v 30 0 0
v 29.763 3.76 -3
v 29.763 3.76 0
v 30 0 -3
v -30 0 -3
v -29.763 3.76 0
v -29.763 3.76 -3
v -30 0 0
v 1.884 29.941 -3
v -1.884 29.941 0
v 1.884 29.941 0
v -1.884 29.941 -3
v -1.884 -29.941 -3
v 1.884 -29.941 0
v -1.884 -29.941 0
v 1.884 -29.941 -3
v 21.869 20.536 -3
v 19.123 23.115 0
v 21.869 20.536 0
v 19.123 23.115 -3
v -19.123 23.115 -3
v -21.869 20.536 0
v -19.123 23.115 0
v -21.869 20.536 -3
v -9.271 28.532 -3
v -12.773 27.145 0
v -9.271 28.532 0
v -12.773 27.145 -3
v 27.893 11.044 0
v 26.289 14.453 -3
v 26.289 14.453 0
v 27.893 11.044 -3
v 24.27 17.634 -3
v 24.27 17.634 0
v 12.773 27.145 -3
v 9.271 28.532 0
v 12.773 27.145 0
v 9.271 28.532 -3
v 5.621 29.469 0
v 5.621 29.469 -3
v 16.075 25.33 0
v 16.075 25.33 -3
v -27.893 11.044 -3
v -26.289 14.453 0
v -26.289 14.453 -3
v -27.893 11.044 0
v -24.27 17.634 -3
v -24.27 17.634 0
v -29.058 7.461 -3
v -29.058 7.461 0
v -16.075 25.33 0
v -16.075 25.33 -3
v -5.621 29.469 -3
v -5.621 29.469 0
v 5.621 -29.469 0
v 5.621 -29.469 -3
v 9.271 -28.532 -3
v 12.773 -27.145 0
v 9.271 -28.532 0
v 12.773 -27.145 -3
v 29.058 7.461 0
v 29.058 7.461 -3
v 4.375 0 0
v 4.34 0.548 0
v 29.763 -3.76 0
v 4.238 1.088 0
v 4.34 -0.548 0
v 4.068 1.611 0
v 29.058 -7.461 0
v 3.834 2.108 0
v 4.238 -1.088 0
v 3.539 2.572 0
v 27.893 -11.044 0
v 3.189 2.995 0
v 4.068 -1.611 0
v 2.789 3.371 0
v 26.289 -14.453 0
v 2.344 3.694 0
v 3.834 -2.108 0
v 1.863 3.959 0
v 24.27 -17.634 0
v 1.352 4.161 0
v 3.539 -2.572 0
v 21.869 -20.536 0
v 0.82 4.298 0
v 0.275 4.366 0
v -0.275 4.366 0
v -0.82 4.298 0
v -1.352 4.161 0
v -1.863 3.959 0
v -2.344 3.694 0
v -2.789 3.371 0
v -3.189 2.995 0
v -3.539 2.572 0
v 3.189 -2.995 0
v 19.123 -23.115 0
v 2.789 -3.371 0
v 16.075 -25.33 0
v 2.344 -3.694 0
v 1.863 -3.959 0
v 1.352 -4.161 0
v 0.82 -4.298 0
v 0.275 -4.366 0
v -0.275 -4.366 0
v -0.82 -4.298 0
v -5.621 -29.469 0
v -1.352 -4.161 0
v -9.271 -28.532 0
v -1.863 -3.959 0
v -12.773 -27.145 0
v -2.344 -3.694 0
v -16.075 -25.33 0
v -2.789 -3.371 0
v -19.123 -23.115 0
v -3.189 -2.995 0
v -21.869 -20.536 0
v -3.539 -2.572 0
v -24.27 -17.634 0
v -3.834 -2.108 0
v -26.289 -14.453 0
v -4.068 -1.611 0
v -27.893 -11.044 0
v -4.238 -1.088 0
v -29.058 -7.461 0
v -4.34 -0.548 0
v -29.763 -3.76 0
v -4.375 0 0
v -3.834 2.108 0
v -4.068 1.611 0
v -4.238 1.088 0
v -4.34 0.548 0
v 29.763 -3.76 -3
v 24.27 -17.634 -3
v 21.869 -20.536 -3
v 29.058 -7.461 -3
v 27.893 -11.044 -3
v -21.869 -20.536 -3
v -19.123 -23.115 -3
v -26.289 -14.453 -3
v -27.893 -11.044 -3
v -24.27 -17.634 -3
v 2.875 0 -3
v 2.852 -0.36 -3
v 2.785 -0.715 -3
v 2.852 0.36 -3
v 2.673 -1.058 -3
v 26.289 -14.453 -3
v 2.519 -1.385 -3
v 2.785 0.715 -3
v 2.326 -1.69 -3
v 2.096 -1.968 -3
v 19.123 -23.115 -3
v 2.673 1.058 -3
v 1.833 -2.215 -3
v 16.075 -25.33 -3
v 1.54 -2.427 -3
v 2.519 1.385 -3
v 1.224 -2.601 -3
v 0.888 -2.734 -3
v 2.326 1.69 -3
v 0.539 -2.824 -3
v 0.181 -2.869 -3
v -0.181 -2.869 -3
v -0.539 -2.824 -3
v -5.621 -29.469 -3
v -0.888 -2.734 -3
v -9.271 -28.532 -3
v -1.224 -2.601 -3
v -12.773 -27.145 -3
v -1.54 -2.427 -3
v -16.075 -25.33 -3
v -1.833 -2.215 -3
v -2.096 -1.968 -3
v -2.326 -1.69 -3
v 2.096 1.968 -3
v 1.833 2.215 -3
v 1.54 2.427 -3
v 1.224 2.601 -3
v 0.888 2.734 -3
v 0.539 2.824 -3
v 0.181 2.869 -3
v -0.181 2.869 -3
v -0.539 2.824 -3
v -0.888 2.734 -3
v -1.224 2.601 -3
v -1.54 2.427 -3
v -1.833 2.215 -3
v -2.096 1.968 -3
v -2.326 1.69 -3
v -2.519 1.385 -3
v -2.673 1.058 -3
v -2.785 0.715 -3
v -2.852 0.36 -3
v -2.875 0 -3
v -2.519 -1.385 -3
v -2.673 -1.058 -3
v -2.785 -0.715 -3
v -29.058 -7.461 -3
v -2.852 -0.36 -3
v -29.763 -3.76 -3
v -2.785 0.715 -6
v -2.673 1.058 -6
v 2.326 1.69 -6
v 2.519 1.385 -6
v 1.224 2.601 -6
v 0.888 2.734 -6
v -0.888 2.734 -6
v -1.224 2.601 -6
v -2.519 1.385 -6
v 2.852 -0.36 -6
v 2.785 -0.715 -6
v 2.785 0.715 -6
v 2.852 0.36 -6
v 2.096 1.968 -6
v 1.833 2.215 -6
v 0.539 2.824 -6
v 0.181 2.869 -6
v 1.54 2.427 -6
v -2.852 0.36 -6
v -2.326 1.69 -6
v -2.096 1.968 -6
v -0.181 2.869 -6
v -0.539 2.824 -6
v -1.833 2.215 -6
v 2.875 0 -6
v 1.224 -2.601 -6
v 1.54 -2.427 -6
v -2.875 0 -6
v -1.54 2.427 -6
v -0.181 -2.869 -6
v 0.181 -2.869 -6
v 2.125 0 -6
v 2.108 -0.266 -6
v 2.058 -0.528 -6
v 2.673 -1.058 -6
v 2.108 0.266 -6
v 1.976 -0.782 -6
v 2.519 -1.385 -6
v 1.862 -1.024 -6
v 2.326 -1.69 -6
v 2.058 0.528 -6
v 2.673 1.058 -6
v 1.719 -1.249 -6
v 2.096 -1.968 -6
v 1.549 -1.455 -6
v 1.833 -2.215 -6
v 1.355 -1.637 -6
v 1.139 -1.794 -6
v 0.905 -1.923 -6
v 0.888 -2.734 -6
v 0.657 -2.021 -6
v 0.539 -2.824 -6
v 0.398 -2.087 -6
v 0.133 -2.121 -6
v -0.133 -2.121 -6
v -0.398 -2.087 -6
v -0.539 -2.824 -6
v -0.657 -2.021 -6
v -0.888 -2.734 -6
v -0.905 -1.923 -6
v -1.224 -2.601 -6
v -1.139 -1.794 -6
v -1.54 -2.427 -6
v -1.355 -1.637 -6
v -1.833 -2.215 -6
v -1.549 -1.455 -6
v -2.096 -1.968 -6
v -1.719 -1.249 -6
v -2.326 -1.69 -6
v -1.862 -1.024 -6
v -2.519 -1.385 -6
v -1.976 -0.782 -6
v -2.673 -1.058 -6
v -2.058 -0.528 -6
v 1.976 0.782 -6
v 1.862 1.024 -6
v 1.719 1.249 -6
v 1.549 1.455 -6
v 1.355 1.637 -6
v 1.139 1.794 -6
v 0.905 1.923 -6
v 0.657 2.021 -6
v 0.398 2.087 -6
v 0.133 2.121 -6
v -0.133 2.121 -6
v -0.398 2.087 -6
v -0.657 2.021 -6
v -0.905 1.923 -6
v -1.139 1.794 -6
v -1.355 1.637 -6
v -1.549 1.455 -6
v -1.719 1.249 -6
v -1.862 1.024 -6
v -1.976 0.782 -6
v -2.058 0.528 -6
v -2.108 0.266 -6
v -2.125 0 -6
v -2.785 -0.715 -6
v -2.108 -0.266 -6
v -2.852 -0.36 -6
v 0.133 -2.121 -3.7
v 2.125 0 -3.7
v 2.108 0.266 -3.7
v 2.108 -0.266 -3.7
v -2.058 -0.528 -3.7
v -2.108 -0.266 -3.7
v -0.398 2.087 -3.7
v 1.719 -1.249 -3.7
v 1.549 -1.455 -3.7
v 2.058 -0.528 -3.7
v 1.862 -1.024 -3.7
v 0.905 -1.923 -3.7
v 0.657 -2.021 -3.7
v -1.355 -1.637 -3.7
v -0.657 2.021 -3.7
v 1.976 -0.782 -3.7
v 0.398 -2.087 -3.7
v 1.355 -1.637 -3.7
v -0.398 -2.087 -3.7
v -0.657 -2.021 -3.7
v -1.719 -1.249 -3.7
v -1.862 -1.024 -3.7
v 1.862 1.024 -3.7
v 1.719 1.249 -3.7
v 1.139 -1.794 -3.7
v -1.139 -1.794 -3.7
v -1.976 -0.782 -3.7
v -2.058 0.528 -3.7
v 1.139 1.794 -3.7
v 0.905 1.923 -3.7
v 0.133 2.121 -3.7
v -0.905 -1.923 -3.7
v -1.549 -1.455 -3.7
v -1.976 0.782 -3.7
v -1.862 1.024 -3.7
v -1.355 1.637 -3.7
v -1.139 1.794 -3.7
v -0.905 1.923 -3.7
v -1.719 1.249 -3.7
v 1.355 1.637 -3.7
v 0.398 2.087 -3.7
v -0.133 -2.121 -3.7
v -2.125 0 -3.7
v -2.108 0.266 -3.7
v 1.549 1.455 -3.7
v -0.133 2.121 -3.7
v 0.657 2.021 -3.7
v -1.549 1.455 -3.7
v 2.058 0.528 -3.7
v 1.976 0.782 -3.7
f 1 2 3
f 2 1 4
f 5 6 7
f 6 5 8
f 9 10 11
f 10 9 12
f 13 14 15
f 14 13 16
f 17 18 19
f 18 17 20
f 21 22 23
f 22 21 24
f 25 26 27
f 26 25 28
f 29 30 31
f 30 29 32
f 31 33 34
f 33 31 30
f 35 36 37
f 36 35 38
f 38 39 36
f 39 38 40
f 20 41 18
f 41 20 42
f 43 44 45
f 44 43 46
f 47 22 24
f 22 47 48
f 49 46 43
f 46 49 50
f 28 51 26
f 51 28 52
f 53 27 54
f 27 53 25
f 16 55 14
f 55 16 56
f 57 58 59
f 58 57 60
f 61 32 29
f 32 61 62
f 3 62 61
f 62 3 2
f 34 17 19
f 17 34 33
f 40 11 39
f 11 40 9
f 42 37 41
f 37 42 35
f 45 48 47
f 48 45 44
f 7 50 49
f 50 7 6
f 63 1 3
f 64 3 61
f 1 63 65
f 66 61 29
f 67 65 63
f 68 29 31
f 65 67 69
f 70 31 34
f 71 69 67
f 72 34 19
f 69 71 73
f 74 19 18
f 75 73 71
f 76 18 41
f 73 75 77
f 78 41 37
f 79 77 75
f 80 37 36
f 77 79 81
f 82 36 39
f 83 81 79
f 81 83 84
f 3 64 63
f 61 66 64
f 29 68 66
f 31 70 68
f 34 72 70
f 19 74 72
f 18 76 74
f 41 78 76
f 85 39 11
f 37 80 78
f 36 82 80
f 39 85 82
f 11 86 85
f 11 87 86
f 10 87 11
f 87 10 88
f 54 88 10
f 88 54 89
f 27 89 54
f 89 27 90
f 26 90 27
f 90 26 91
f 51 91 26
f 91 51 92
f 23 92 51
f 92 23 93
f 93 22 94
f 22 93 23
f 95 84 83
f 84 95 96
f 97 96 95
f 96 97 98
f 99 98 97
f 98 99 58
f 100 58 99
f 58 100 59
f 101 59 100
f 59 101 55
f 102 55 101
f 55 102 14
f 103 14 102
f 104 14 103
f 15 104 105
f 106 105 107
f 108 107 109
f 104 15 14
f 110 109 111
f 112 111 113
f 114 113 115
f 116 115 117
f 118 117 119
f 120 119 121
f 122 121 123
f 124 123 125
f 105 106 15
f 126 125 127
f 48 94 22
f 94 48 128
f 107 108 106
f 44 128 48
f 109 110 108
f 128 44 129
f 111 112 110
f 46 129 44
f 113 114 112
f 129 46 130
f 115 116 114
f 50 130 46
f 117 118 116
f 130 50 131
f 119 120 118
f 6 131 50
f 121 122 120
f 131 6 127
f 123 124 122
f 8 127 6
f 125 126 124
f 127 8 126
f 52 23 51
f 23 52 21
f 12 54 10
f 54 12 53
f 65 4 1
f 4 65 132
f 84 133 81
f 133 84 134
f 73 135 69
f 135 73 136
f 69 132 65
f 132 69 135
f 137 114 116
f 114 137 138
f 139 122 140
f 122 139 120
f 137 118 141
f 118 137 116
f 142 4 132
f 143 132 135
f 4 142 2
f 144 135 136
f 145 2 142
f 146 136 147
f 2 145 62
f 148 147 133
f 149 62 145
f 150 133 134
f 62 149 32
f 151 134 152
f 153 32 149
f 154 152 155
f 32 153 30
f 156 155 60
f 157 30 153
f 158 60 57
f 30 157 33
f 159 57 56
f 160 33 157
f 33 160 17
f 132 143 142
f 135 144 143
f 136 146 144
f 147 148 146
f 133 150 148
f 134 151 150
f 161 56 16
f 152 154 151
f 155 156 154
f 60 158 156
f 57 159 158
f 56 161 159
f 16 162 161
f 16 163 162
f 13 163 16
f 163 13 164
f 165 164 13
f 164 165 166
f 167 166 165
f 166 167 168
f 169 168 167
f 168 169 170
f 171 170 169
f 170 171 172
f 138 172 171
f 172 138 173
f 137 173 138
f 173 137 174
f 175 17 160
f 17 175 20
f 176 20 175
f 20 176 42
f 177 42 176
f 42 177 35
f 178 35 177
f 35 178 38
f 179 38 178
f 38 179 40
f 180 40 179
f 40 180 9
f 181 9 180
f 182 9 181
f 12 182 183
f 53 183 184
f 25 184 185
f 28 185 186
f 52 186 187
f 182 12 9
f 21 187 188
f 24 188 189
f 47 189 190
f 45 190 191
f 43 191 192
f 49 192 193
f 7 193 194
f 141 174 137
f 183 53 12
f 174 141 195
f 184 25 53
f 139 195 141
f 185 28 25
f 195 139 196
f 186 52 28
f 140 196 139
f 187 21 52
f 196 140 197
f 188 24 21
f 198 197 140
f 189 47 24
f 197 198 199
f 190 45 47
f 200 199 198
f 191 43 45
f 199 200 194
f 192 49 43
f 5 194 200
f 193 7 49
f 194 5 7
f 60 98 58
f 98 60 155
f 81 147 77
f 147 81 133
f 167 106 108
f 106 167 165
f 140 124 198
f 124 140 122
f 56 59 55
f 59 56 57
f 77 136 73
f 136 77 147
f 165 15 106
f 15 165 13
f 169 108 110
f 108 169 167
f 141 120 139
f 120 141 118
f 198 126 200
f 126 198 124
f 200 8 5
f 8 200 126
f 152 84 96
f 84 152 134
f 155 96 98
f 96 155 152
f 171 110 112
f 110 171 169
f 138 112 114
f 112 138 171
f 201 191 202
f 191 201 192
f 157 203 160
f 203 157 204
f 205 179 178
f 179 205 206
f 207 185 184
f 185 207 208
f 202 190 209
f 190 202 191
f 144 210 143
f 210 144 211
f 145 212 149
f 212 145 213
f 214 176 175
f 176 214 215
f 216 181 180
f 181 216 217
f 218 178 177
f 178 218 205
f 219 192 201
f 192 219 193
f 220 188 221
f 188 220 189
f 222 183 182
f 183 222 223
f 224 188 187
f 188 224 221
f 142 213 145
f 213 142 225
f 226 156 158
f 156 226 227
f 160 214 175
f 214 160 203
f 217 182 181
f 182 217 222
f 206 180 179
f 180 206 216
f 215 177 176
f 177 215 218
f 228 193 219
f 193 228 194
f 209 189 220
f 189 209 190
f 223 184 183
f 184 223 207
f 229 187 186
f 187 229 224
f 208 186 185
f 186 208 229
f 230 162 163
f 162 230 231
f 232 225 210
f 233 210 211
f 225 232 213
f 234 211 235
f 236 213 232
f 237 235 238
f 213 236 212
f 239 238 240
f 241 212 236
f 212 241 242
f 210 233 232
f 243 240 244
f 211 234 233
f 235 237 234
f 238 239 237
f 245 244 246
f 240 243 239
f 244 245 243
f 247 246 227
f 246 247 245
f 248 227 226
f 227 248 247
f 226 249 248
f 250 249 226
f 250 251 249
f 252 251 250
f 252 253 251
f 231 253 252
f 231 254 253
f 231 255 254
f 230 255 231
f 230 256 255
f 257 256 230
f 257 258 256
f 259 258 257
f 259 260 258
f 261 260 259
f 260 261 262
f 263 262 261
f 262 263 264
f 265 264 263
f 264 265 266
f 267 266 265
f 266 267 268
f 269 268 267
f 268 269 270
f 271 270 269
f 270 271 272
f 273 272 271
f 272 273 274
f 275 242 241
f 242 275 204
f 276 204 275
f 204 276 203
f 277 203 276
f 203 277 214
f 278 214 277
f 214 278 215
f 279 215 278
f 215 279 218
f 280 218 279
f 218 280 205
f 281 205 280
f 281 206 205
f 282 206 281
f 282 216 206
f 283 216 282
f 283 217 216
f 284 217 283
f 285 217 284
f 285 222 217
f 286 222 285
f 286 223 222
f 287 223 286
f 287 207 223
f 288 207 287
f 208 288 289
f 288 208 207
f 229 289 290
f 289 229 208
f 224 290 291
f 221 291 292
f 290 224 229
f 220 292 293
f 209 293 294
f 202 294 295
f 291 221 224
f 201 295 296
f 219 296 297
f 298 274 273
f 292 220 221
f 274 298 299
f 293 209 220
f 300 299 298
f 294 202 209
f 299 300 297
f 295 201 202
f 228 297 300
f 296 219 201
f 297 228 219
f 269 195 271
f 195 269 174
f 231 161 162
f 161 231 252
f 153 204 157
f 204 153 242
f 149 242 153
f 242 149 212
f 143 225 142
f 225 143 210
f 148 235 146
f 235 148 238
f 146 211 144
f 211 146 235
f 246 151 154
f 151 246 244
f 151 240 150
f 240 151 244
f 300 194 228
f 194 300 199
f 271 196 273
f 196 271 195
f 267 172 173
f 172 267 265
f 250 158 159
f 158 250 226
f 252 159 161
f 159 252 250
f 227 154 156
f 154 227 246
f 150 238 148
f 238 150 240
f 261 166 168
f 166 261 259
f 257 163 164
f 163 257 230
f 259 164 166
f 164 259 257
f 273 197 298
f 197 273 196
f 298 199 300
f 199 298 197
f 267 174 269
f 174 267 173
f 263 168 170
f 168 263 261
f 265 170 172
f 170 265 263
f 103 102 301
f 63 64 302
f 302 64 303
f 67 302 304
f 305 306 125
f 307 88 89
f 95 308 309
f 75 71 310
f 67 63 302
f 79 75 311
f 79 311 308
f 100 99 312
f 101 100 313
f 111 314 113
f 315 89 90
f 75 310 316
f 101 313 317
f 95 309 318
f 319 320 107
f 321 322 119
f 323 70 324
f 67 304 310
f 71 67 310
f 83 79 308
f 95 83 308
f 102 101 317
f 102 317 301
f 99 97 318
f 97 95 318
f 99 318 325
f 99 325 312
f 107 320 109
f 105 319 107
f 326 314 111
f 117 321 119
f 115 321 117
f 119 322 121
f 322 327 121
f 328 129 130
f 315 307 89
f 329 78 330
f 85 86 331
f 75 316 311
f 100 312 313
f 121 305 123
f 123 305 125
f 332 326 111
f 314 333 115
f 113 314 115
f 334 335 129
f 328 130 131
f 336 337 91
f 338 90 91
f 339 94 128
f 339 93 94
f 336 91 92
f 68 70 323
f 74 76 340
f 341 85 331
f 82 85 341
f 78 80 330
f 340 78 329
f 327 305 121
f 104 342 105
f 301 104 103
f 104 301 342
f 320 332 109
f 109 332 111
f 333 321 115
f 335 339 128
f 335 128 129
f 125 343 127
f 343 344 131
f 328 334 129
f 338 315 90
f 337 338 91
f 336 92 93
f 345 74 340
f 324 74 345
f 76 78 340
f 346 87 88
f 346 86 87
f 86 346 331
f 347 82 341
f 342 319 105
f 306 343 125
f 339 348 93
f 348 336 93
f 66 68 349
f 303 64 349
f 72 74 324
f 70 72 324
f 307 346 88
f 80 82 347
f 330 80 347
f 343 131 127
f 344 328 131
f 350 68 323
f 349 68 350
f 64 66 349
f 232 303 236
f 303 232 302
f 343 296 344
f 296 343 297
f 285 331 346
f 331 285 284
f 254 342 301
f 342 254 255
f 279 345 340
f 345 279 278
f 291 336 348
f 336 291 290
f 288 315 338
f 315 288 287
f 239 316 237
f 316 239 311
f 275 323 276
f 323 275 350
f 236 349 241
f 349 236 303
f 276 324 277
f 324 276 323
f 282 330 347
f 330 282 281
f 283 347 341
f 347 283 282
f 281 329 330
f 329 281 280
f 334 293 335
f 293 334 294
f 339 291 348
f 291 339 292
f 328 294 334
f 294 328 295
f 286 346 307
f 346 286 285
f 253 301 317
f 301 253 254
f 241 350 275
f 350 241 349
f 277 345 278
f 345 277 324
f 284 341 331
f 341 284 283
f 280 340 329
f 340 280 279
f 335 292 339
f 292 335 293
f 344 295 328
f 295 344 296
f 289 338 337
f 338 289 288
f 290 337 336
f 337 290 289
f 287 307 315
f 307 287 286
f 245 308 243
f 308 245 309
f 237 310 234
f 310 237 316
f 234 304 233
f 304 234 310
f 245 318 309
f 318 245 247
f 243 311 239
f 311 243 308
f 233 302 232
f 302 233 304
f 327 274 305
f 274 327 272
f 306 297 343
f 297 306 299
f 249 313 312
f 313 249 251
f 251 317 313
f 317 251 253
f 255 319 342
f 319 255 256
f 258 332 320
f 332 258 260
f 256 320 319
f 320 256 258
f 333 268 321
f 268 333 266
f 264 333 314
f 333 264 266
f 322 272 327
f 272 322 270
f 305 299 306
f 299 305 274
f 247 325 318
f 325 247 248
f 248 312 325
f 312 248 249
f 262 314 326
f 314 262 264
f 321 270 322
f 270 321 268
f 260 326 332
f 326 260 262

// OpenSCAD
$fn = 50;


difference() {
	union() {
		translate(v = [0, 0, -3.0000000000]) {
			cylinder(h = 3, r = 30.0000000000);
		}
		translate(v = [0, 0, -6.0000000000]) {
			cylinder(h = 6, r = 2.8750000000);
		}
	}
	union() {
		translate(v = [0, 0, 0]) {
			rotate(a = [0, 0, 0]) {
				difference() {
					union() {
						translate(v = [0, 0, -6.0000000000]) {
							cylinder(h = 6, r = 2.0000000000);
						}
						translate(v = [0, 0, -3.7000000000]) {
							cylinder(h = 3.7000000000, r1 = 2.1250000000, r2 = 4.3750000000);
						}
						translate(v = [0, 0, -6.0000000000]) {
							cylinder(h = 6, r = 2.1250000000);
						}
						translate(v = [0, 0, -6.0000000000]) {
							cylinder(h = 6, r = 2.0000000000);
						}
					}
					union();
				}
			}
		}
	}
}
